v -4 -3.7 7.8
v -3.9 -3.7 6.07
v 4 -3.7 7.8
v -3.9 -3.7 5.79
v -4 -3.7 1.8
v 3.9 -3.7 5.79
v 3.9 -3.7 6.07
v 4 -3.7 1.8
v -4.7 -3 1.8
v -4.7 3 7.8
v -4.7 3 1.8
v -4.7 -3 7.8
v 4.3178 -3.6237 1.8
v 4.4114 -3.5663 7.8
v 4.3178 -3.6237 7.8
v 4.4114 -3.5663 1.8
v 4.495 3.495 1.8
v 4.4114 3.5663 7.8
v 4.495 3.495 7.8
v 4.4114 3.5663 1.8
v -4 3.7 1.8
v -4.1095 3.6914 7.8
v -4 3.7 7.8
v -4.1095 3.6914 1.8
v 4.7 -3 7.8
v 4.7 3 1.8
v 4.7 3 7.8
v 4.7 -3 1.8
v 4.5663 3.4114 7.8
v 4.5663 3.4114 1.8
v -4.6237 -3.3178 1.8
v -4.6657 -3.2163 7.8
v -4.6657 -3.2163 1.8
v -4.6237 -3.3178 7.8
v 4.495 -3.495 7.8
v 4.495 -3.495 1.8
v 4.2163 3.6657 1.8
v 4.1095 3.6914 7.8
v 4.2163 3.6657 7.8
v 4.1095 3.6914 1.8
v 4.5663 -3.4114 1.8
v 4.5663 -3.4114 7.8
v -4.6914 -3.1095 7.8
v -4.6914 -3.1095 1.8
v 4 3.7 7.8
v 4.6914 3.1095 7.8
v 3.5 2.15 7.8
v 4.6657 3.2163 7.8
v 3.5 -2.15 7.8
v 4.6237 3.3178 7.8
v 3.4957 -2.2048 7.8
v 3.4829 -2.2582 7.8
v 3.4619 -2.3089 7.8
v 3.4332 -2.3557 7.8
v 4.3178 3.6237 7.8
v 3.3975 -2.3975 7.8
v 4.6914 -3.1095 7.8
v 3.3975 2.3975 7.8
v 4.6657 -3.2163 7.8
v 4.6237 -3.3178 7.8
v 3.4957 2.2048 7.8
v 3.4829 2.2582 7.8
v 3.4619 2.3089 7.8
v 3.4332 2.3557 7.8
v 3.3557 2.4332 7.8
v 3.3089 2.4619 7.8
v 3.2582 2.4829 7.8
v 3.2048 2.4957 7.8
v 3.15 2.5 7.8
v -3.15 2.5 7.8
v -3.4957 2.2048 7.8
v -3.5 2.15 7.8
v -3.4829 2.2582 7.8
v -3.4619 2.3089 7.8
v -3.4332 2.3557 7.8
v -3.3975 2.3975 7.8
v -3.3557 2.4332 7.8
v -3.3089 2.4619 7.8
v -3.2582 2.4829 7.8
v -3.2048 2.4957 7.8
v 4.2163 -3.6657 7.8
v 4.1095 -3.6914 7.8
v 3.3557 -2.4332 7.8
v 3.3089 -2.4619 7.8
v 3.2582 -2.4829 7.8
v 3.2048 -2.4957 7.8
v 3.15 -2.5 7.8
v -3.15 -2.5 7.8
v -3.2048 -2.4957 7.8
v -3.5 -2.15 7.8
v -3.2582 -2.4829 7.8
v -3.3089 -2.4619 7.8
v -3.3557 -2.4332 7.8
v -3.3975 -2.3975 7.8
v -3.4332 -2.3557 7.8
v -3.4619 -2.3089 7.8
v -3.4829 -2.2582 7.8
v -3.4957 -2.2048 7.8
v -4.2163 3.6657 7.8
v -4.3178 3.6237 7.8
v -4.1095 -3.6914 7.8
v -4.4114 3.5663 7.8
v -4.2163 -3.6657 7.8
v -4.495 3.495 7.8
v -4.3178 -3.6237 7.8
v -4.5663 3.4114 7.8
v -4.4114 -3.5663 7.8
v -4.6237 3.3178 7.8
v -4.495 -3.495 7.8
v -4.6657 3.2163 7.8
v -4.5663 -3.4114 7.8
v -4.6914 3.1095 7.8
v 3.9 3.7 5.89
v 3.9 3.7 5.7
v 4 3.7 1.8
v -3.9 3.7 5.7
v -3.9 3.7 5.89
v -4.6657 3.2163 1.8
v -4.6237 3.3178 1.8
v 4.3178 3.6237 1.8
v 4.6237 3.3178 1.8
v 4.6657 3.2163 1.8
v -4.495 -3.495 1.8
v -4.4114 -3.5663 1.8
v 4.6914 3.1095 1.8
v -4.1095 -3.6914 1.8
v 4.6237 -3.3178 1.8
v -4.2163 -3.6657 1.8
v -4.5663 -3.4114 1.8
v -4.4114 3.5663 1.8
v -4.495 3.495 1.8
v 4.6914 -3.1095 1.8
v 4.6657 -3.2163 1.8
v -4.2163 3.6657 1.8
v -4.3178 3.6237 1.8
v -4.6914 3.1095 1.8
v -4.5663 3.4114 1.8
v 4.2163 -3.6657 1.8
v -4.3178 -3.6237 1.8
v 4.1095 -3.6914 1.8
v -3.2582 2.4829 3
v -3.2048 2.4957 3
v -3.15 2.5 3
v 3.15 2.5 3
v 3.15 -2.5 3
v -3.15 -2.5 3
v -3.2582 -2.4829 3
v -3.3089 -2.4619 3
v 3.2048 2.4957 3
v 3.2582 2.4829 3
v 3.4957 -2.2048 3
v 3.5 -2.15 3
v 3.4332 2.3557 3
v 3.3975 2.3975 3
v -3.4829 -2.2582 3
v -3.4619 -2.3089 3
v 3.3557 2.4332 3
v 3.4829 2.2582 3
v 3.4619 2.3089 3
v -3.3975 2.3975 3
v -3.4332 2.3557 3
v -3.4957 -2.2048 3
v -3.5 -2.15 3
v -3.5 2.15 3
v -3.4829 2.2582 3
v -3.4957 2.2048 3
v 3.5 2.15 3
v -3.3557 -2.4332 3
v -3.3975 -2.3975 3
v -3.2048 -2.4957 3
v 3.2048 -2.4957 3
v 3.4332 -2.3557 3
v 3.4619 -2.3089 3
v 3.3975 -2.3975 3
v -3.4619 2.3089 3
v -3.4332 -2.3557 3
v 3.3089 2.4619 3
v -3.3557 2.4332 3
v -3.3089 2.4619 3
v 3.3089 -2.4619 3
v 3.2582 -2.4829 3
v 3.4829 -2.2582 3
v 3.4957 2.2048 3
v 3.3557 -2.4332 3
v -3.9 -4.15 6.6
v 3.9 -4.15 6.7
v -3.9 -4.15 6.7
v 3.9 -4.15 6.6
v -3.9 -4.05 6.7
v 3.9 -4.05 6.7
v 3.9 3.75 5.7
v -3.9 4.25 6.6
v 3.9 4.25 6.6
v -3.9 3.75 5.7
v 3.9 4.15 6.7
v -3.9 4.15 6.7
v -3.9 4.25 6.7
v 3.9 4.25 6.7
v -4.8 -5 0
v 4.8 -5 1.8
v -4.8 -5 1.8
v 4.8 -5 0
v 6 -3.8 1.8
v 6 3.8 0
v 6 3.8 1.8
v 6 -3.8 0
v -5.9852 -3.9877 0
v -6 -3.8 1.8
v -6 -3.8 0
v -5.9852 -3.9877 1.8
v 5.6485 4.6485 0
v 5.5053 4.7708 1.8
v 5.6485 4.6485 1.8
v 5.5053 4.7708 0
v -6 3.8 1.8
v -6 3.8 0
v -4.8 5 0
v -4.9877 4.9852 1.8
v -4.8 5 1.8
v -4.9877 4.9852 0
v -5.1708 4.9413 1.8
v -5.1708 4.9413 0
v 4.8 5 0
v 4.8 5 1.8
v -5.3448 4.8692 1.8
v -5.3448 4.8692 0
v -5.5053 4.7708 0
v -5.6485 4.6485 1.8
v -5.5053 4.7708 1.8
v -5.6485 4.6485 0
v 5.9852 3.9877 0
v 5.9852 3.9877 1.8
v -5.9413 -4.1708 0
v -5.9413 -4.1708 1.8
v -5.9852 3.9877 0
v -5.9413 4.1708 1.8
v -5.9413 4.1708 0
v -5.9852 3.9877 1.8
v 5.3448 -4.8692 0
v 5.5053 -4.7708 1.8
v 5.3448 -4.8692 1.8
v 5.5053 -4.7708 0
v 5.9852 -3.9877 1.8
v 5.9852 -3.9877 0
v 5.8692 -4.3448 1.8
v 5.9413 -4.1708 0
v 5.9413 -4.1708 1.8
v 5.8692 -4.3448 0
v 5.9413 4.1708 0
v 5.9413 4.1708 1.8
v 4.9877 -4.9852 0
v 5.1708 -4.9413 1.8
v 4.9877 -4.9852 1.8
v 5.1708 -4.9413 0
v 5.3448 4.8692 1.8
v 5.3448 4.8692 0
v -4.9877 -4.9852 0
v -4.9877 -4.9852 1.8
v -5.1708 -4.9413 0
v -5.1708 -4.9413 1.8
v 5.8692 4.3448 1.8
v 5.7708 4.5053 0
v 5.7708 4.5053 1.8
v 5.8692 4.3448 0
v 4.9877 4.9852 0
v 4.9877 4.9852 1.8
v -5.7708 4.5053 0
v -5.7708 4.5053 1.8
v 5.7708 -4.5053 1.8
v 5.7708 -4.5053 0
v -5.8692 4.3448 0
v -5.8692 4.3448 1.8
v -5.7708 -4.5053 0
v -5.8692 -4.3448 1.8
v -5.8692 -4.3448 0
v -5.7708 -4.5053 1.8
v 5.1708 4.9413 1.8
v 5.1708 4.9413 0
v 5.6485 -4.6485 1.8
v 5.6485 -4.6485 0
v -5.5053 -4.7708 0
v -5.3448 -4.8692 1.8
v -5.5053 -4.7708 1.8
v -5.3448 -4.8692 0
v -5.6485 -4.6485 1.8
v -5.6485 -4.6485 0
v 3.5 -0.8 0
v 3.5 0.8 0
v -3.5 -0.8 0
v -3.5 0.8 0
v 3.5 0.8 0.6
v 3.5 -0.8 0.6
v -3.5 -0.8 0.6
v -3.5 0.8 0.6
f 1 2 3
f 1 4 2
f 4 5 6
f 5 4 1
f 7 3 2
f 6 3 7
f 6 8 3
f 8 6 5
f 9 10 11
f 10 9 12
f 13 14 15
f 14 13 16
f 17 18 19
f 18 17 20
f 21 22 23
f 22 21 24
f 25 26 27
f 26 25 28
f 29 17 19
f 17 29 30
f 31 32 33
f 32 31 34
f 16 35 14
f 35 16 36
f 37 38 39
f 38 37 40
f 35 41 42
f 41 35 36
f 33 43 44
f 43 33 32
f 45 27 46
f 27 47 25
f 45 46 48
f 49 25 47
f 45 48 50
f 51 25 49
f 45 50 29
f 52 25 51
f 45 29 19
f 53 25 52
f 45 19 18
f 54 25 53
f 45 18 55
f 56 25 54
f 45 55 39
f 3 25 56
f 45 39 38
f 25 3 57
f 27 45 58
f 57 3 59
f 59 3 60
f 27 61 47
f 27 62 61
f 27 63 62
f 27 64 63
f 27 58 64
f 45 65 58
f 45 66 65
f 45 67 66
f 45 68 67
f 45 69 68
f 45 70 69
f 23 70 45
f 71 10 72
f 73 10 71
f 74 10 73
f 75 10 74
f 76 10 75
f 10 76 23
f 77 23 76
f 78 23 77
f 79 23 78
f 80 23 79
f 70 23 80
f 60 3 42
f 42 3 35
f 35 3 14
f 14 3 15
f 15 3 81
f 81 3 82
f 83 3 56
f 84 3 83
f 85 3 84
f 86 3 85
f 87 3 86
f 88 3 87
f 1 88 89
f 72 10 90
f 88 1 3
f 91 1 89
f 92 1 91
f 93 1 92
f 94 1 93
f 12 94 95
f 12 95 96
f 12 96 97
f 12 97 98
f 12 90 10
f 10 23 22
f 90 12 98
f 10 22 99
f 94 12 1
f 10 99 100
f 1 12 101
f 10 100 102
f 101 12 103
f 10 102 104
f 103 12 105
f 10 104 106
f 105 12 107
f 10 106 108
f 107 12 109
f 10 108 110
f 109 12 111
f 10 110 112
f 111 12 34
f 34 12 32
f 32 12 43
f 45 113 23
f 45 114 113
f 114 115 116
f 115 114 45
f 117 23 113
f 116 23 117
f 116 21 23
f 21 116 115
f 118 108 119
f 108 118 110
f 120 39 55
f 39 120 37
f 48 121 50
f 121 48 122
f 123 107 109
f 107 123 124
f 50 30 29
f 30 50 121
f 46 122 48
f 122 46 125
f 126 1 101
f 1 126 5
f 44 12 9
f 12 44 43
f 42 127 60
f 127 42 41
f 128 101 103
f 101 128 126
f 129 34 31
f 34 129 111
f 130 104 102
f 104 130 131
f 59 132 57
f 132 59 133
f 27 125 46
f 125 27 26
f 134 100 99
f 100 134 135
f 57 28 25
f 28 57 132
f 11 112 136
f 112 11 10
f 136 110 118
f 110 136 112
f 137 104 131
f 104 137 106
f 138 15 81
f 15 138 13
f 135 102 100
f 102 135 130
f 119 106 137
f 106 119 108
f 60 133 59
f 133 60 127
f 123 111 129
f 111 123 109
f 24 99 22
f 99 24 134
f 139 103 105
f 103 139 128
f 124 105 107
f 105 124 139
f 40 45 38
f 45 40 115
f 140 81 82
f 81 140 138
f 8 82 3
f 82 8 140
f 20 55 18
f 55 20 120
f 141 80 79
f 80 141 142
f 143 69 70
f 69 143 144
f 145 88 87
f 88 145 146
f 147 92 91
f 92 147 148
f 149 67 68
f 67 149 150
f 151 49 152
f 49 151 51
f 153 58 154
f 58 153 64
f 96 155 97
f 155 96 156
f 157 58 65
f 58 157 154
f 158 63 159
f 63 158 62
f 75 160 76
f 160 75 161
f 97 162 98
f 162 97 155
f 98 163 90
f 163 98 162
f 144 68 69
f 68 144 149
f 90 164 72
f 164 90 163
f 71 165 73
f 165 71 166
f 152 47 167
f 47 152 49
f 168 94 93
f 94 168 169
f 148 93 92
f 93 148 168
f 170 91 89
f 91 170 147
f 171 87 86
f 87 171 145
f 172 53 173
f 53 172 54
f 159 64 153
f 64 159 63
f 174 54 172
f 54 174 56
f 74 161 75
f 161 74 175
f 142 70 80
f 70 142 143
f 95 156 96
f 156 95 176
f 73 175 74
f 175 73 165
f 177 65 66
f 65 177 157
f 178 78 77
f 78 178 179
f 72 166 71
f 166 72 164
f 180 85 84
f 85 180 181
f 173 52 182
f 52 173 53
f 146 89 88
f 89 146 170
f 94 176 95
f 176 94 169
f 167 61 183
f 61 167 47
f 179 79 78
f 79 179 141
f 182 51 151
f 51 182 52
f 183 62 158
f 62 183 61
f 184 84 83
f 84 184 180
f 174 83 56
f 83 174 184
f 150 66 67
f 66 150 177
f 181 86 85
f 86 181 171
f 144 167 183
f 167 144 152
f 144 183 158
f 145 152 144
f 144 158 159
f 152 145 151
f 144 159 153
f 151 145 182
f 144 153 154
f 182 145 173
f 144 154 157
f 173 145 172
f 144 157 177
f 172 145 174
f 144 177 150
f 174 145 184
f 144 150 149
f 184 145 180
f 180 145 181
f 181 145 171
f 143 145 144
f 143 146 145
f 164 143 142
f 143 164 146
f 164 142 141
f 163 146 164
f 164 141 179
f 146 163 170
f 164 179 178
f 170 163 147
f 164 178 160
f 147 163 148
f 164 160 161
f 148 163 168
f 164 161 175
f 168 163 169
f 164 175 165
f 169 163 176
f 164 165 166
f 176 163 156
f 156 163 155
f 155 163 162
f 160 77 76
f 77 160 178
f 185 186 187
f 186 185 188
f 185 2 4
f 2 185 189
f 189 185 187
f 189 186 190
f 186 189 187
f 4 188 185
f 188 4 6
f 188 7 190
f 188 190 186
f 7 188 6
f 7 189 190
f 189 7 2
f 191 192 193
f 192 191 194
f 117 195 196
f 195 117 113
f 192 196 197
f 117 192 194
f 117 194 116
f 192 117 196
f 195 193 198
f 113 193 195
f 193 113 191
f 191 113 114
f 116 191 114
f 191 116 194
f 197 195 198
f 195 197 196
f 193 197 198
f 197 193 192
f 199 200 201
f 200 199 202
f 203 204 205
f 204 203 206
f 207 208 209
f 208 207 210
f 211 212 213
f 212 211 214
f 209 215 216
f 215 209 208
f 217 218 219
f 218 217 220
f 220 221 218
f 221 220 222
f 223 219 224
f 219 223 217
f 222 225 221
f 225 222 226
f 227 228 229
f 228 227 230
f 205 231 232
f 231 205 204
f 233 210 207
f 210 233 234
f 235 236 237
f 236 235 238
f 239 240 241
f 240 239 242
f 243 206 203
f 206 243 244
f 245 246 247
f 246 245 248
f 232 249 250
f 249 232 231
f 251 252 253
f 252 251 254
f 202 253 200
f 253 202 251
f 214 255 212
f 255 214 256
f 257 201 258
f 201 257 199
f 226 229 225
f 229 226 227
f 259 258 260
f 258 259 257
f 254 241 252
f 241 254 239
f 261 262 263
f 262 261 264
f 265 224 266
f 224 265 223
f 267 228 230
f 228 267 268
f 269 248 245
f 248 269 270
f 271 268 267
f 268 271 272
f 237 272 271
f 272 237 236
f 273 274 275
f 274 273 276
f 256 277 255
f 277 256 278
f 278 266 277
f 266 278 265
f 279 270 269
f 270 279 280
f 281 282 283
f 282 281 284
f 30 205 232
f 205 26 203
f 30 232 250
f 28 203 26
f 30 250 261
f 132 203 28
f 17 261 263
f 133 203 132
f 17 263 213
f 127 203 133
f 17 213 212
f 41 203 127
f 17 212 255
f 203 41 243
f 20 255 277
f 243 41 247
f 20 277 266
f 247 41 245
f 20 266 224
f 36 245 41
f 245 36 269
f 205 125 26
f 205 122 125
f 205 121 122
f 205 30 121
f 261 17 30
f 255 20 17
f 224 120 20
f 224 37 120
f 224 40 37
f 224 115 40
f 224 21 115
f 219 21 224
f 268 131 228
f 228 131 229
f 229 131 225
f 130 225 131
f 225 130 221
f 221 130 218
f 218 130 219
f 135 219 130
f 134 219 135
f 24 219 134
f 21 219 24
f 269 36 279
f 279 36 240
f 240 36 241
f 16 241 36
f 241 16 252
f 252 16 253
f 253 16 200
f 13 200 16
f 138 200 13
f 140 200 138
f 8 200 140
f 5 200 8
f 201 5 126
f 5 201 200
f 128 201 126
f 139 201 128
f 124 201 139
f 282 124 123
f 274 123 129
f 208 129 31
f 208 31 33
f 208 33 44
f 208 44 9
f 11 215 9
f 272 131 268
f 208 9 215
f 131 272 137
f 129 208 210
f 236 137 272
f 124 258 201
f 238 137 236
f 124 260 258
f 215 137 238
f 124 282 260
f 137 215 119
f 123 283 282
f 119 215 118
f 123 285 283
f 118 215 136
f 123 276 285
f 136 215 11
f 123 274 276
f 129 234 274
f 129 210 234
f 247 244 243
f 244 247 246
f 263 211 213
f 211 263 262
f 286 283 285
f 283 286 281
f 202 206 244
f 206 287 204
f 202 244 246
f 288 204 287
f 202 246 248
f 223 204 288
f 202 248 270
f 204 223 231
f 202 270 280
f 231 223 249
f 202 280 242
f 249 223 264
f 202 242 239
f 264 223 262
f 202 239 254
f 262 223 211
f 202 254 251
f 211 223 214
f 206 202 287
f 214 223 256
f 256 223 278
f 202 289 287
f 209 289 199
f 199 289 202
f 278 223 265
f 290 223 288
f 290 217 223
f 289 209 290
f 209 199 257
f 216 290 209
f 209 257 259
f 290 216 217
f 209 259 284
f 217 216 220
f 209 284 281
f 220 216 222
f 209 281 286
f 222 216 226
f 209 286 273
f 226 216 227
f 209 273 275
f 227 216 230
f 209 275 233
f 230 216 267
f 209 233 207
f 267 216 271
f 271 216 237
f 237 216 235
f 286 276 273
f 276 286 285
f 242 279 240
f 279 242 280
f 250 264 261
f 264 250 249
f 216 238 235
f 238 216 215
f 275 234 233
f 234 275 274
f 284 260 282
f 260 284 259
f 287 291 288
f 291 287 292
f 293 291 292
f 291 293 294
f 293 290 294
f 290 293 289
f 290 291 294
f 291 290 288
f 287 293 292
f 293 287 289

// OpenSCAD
// =========================================================
// BRAILLIX POGO END CAP — functional TPU snap plug
// Revision 2.0 — 2026-08-19
//
// The old part used a 12x10 insertion body for a 10x8 slot and its
// "snap lips" were buried inside that same envelope, so no snap existed.
// This revision separates the exposed flange from a clearance tongue and
// places real flexible barbs just beyond the 4mm enclosure wall.
// =========================================================

pogo_slot_w    = 10.0;
pogo_slot_h    = 8.0;
wall_thickness = 4.0;

face_w = 12.0;
face_h = 10.0;
face_t = 1.8;
face_r = 1.2;

tongue_w     = 9.4;   // 0.3mm clearance per slot side
tongue_h     = 7.4;
tongue_depth = 6.0;   // 2mm beyond the inner wall
shell_t      = 1.2;   // hollow tongue flexes during insertion

barb_out     = 0.45;  // TPU interference beyond tongue envelope
barb_depth   = 0.9;
barb_z       = face_t + wall_thickness + 0.35;

$fn = 40;

module rounded_prism(w, h, r, z) {
    hull()
        for (sx=[-1,1], sy=[-1,1])
            translate([sx*(w/2-r), sy*(h/2-r), 0]) cylinder(r=r, h=z);
}

module face_flange() {
    rounded_prism(face_w, face_h, face_r, face_t);
}

module flexible_tongue() {
    difference() {
        translate([0,0,face_t-0.2])
            rounded_prism(tongue_w, tongue_h, 0.7, tongue_depth+0.2);
        // Open at the insertion end; leave the flange as the sealed front face.
        translate([0,0,face_t+shell_t])
            rounded_prism(tongue_w-2*shell_t,
                          tongue_h-2*shell_t,
                          0.35,
                          tongue_depth+1);
    }
}

module snap_barbs() {
    // Two shallow TPU ramps. Their tips sit behind the 4mm wall when installed.
    for (sy=[-1,1]) {
        y0 = sy*(tongue_h/2-0.05);
        y1 = sy*(tongue_h/2+barb_out);
        hull() {
            translate([-tongue_w/2+0.8, y0, barb_z-barb_depth/2])
                cube([tongue_w-1.6, 0.10, 0.10]);
            translate([-tongue_w/2+0.8, y1, barb_z+barb_depth/2])
                cube([tongue_w-1.6, 0.10, 0.10]);
        }
    }
}

module pogo_end_cap() {
    difference() {
        union() {
            face_flange();
            flexible_tongue();
            snap_barbs();
        }
        // Recessed tactile end-of-chain bar on the exposed face.
        translate([-3.5,-0.8,-0.05]) cube([7.0,1.6,0.65]);
    }
}

// Print as exported: flange on bed, tongue upward. TPU 95A, 0.16-0.20mm,
// 3-4 walls, no supports. The 0.45mm barbs are intentionally TPU-only.
pogo_end_cap();
